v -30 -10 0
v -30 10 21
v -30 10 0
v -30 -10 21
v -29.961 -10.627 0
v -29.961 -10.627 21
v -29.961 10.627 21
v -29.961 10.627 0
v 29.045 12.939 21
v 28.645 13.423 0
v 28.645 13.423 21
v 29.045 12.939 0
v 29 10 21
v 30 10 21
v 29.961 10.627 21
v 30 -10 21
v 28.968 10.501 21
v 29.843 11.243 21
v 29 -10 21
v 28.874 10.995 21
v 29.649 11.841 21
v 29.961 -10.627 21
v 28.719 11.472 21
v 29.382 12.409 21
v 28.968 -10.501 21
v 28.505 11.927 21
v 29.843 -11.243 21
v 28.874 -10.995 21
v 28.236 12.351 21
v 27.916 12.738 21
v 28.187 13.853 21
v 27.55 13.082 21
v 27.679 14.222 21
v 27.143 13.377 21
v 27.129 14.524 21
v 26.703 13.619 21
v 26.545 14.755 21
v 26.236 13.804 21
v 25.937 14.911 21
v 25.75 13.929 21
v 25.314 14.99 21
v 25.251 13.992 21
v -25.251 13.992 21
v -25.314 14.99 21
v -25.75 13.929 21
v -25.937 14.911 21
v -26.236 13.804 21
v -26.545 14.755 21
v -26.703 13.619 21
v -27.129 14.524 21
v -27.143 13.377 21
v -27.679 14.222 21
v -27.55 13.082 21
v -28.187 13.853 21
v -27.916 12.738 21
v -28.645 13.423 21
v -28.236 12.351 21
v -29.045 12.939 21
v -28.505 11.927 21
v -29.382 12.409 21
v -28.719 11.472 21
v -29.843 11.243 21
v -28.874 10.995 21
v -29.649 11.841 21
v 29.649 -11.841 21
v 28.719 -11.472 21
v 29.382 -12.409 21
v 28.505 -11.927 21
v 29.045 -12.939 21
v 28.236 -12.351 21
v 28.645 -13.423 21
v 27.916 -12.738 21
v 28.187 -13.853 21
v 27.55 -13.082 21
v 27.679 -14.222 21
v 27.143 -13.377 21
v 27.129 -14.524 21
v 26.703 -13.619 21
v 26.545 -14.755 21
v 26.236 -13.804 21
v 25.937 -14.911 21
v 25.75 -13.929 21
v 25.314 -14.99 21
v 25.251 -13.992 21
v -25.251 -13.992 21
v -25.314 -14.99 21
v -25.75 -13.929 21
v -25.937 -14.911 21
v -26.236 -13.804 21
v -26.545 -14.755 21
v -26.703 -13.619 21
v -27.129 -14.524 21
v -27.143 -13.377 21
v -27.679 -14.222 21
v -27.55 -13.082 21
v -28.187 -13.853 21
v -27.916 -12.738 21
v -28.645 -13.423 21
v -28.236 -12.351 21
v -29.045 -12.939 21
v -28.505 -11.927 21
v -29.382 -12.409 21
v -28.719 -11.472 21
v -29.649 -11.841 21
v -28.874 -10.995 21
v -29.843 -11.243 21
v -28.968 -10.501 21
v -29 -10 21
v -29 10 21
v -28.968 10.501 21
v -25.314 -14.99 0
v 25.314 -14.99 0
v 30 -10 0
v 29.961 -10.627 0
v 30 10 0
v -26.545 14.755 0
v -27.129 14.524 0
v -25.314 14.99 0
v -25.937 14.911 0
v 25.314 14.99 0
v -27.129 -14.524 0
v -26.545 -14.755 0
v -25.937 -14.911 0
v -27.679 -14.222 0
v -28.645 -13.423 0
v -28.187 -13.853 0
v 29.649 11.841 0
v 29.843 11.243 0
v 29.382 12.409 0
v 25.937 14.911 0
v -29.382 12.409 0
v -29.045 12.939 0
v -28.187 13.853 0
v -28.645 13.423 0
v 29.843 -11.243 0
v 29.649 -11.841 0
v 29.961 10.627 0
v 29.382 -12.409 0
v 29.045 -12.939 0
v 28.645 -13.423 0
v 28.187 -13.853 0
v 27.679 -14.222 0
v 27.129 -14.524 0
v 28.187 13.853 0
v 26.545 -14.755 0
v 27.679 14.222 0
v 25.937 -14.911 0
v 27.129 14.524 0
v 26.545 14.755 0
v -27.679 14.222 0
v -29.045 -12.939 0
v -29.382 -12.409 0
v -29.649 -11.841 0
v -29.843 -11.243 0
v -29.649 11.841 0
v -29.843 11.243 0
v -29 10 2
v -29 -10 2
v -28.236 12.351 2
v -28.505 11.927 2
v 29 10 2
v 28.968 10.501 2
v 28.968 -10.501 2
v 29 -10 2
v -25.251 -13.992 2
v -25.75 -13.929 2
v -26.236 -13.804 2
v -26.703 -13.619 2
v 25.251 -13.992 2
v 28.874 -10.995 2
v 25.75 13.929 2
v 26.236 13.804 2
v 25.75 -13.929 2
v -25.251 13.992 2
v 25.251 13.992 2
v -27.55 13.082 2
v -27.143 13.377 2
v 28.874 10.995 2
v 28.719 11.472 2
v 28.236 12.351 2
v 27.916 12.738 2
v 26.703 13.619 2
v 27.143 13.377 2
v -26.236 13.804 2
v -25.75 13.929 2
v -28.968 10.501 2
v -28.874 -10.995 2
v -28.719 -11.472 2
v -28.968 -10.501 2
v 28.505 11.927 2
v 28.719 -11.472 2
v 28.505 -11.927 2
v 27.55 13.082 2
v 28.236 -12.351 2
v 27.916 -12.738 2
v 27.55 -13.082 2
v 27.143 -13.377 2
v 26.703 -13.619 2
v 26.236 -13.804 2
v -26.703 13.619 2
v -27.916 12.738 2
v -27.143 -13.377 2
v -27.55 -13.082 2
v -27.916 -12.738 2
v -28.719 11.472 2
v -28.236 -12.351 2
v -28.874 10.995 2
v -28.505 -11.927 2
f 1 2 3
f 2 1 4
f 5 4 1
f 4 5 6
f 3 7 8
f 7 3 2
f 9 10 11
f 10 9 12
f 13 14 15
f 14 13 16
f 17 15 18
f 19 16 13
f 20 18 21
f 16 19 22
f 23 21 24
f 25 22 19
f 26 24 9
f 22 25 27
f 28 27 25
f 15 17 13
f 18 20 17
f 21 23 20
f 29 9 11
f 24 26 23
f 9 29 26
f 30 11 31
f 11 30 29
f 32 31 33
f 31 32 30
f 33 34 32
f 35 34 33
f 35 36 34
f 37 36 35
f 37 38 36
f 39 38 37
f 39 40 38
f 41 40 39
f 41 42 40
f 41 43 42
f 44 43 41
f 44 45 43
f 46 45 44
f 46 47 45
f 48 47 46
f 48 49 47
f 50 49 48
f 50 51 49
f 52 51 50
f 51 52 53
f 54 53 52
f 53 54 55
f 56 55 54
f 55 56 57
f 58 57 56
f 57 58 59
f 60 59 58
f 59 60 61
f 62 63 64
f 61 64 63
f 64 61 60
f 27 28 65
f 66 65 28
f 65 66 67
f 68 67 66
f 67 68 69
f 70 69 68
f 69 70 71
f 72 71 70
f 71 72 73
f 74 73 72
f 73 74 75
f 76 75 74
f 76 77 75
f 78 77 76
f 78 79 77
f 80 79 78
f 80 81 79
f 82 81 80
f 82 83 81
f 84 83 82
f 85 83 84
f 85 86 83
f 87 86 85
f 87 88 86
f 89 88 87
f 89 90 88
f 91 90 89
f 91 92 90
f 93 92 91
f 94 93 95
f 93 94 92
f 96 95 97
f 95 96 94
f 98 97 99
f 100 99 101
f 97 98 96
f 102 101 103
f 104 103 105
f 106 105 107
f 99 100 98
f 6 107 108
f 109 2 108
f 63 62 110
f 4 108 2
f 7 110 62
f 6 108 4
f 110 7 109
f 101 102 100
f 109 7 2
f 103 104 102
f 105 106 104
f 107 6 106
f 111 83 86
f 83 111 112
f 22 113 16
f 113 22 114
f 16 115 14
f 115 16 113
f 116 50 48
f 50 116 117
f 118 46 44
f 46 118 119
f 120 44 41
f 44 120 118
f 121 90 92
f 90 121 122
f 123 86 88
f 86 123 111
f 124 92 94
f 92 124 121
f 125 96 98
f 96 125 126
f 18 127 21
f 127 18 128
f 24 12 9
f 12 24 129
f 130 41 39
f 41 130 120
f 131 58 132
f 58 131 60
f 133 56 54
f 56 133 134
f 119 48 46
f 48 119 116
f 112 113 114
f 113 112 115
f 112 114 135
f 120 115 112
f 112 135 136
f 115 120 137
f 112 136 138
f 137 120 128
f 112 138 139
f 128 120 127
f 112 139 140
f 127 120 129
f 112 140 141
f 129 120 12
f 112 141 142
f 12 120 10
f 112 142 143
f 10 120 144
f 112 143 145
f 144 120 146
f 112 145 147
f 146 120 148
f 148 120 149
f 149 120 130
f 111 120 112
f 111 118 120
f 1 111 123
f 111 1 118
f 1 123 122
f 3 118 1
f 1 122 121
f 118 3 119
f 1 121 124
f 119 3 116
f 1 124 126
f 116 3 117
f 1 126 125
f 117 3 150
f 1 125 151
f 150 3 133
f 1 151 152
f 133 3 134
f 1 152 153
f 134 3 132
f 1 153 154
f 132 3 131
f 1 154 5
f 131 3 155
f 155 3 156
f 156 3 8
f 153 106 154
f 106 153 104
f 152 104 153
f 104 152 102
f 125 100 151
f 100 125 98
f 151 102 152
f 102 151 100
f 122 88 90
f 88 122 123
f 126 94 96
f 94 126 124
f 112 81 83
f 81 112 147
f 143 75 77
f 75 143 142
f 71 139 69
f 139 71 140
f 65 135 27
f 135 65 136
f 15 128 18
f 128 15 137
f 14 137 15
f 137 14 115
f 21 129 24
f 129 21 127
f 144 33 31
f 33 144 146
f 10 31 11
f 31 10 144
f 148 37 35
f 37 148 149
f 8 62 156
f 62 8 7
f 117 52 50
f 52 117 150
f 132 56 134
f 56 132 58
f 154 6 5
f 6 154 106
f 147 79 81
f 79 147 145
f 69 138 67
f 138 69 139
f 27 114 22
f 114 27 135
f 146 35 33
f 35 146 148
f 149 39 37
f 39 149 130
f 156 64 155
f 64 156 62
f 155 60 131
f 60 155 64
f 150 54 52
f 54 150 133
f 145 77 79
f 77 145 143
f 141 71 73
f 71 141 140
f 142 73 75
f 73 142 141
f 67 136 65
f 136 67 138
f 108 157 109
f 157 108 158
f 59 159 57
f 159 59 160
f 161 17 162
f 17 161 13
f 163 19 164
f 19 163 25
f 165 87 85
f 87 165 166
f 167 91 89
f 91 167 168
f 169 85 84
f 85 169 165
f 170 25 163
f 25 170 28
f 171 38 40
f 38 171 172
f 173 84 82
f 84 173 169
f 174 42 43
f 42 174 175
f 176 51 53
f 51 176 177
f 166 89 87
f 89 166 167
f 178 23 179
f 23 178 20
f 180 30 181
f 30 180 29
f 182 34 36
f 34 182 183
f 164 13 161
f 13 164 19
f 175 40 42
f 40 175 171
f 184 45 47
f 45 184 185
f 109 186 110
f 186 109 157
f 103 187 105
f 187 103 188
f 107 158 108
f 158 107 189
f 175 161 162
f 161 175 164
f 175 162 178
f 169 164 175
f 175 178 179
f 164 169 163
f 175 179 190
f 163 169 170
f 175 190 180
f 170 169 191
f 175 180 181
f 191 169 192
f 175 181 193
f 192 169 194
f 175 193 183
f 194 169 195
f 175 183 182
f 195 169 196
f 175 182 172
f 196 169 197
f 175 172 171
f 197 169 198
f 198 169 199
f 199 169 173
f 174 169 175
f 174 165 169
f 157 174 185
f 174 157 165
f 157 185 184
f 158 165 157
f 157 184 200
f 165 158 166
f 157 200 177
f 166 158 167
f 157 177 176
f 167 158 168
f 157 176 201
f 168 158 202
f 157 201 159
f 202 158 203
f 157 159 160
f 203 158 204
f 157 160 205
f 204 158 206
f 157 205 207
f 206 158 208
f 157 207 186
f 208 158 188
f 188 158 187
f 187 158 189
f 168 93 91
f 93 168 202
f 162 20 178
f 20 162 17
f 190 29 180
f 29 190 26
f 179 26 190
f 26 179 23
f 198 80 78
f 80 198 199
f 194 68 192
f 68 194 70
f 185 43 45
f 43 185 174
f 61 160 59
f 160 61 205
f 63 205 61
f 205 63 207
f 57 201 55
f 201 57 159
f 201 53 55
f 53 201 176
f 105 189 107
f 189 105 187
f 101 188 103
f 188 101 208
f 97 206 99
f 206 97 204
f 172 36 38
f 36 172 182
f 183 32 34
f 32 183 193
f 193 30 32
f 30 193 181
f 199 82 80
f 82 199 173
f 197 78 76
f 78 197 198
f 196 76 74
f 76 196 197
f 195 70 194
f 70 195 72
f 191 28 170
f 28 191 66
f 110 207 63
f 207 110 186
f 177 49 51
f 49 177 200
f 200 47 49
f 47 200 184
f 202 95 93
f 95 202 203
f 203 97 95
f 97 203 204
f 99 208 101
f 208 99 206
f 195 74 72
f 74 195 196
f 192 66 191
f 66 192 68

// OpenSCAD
$fn = 50;


difference() {
	union() {
		hull() {
			translate(v = [-25.0000000000, 10.0000000000, 0]) {
				cylinder(h = 21, r = 5);
			}
			translate(v = [25.0000000000, 10.0000000000, 0]) {
				cylinder(h = 21, r = 5);
			}
			translate(v = [-25.0000000000, -10.0000000000, 0]) {
				cylinder(h = 21, r = 5);
			}
			translate(v = [25.0000000000, -10.0000000000, 0]) {
				cylinder(h = 21, r = 5);
			}
		}
	}
	union() {
		translate(v = [0, 0, 2]) {
			hull() {
				translate(v = [-25.0000000000, 10.0000000000, 0]) {
					cylinder(h = 19, r = 4);
				}
				translate(v = [25.0000000000, 10.0000000000, 0]) {
					cylinder(h = 19, r = 4);
				}
				translate(v = [-25.0000000000, -10.0000000000, 0]) {
					cylinder(h = 19, r = 4);
				}
				translate(v = [25.0000000000, -10.0000000000, 0]) {
					cylinder(h = 19, r = 4);
				}
			}
		}
	}
}
